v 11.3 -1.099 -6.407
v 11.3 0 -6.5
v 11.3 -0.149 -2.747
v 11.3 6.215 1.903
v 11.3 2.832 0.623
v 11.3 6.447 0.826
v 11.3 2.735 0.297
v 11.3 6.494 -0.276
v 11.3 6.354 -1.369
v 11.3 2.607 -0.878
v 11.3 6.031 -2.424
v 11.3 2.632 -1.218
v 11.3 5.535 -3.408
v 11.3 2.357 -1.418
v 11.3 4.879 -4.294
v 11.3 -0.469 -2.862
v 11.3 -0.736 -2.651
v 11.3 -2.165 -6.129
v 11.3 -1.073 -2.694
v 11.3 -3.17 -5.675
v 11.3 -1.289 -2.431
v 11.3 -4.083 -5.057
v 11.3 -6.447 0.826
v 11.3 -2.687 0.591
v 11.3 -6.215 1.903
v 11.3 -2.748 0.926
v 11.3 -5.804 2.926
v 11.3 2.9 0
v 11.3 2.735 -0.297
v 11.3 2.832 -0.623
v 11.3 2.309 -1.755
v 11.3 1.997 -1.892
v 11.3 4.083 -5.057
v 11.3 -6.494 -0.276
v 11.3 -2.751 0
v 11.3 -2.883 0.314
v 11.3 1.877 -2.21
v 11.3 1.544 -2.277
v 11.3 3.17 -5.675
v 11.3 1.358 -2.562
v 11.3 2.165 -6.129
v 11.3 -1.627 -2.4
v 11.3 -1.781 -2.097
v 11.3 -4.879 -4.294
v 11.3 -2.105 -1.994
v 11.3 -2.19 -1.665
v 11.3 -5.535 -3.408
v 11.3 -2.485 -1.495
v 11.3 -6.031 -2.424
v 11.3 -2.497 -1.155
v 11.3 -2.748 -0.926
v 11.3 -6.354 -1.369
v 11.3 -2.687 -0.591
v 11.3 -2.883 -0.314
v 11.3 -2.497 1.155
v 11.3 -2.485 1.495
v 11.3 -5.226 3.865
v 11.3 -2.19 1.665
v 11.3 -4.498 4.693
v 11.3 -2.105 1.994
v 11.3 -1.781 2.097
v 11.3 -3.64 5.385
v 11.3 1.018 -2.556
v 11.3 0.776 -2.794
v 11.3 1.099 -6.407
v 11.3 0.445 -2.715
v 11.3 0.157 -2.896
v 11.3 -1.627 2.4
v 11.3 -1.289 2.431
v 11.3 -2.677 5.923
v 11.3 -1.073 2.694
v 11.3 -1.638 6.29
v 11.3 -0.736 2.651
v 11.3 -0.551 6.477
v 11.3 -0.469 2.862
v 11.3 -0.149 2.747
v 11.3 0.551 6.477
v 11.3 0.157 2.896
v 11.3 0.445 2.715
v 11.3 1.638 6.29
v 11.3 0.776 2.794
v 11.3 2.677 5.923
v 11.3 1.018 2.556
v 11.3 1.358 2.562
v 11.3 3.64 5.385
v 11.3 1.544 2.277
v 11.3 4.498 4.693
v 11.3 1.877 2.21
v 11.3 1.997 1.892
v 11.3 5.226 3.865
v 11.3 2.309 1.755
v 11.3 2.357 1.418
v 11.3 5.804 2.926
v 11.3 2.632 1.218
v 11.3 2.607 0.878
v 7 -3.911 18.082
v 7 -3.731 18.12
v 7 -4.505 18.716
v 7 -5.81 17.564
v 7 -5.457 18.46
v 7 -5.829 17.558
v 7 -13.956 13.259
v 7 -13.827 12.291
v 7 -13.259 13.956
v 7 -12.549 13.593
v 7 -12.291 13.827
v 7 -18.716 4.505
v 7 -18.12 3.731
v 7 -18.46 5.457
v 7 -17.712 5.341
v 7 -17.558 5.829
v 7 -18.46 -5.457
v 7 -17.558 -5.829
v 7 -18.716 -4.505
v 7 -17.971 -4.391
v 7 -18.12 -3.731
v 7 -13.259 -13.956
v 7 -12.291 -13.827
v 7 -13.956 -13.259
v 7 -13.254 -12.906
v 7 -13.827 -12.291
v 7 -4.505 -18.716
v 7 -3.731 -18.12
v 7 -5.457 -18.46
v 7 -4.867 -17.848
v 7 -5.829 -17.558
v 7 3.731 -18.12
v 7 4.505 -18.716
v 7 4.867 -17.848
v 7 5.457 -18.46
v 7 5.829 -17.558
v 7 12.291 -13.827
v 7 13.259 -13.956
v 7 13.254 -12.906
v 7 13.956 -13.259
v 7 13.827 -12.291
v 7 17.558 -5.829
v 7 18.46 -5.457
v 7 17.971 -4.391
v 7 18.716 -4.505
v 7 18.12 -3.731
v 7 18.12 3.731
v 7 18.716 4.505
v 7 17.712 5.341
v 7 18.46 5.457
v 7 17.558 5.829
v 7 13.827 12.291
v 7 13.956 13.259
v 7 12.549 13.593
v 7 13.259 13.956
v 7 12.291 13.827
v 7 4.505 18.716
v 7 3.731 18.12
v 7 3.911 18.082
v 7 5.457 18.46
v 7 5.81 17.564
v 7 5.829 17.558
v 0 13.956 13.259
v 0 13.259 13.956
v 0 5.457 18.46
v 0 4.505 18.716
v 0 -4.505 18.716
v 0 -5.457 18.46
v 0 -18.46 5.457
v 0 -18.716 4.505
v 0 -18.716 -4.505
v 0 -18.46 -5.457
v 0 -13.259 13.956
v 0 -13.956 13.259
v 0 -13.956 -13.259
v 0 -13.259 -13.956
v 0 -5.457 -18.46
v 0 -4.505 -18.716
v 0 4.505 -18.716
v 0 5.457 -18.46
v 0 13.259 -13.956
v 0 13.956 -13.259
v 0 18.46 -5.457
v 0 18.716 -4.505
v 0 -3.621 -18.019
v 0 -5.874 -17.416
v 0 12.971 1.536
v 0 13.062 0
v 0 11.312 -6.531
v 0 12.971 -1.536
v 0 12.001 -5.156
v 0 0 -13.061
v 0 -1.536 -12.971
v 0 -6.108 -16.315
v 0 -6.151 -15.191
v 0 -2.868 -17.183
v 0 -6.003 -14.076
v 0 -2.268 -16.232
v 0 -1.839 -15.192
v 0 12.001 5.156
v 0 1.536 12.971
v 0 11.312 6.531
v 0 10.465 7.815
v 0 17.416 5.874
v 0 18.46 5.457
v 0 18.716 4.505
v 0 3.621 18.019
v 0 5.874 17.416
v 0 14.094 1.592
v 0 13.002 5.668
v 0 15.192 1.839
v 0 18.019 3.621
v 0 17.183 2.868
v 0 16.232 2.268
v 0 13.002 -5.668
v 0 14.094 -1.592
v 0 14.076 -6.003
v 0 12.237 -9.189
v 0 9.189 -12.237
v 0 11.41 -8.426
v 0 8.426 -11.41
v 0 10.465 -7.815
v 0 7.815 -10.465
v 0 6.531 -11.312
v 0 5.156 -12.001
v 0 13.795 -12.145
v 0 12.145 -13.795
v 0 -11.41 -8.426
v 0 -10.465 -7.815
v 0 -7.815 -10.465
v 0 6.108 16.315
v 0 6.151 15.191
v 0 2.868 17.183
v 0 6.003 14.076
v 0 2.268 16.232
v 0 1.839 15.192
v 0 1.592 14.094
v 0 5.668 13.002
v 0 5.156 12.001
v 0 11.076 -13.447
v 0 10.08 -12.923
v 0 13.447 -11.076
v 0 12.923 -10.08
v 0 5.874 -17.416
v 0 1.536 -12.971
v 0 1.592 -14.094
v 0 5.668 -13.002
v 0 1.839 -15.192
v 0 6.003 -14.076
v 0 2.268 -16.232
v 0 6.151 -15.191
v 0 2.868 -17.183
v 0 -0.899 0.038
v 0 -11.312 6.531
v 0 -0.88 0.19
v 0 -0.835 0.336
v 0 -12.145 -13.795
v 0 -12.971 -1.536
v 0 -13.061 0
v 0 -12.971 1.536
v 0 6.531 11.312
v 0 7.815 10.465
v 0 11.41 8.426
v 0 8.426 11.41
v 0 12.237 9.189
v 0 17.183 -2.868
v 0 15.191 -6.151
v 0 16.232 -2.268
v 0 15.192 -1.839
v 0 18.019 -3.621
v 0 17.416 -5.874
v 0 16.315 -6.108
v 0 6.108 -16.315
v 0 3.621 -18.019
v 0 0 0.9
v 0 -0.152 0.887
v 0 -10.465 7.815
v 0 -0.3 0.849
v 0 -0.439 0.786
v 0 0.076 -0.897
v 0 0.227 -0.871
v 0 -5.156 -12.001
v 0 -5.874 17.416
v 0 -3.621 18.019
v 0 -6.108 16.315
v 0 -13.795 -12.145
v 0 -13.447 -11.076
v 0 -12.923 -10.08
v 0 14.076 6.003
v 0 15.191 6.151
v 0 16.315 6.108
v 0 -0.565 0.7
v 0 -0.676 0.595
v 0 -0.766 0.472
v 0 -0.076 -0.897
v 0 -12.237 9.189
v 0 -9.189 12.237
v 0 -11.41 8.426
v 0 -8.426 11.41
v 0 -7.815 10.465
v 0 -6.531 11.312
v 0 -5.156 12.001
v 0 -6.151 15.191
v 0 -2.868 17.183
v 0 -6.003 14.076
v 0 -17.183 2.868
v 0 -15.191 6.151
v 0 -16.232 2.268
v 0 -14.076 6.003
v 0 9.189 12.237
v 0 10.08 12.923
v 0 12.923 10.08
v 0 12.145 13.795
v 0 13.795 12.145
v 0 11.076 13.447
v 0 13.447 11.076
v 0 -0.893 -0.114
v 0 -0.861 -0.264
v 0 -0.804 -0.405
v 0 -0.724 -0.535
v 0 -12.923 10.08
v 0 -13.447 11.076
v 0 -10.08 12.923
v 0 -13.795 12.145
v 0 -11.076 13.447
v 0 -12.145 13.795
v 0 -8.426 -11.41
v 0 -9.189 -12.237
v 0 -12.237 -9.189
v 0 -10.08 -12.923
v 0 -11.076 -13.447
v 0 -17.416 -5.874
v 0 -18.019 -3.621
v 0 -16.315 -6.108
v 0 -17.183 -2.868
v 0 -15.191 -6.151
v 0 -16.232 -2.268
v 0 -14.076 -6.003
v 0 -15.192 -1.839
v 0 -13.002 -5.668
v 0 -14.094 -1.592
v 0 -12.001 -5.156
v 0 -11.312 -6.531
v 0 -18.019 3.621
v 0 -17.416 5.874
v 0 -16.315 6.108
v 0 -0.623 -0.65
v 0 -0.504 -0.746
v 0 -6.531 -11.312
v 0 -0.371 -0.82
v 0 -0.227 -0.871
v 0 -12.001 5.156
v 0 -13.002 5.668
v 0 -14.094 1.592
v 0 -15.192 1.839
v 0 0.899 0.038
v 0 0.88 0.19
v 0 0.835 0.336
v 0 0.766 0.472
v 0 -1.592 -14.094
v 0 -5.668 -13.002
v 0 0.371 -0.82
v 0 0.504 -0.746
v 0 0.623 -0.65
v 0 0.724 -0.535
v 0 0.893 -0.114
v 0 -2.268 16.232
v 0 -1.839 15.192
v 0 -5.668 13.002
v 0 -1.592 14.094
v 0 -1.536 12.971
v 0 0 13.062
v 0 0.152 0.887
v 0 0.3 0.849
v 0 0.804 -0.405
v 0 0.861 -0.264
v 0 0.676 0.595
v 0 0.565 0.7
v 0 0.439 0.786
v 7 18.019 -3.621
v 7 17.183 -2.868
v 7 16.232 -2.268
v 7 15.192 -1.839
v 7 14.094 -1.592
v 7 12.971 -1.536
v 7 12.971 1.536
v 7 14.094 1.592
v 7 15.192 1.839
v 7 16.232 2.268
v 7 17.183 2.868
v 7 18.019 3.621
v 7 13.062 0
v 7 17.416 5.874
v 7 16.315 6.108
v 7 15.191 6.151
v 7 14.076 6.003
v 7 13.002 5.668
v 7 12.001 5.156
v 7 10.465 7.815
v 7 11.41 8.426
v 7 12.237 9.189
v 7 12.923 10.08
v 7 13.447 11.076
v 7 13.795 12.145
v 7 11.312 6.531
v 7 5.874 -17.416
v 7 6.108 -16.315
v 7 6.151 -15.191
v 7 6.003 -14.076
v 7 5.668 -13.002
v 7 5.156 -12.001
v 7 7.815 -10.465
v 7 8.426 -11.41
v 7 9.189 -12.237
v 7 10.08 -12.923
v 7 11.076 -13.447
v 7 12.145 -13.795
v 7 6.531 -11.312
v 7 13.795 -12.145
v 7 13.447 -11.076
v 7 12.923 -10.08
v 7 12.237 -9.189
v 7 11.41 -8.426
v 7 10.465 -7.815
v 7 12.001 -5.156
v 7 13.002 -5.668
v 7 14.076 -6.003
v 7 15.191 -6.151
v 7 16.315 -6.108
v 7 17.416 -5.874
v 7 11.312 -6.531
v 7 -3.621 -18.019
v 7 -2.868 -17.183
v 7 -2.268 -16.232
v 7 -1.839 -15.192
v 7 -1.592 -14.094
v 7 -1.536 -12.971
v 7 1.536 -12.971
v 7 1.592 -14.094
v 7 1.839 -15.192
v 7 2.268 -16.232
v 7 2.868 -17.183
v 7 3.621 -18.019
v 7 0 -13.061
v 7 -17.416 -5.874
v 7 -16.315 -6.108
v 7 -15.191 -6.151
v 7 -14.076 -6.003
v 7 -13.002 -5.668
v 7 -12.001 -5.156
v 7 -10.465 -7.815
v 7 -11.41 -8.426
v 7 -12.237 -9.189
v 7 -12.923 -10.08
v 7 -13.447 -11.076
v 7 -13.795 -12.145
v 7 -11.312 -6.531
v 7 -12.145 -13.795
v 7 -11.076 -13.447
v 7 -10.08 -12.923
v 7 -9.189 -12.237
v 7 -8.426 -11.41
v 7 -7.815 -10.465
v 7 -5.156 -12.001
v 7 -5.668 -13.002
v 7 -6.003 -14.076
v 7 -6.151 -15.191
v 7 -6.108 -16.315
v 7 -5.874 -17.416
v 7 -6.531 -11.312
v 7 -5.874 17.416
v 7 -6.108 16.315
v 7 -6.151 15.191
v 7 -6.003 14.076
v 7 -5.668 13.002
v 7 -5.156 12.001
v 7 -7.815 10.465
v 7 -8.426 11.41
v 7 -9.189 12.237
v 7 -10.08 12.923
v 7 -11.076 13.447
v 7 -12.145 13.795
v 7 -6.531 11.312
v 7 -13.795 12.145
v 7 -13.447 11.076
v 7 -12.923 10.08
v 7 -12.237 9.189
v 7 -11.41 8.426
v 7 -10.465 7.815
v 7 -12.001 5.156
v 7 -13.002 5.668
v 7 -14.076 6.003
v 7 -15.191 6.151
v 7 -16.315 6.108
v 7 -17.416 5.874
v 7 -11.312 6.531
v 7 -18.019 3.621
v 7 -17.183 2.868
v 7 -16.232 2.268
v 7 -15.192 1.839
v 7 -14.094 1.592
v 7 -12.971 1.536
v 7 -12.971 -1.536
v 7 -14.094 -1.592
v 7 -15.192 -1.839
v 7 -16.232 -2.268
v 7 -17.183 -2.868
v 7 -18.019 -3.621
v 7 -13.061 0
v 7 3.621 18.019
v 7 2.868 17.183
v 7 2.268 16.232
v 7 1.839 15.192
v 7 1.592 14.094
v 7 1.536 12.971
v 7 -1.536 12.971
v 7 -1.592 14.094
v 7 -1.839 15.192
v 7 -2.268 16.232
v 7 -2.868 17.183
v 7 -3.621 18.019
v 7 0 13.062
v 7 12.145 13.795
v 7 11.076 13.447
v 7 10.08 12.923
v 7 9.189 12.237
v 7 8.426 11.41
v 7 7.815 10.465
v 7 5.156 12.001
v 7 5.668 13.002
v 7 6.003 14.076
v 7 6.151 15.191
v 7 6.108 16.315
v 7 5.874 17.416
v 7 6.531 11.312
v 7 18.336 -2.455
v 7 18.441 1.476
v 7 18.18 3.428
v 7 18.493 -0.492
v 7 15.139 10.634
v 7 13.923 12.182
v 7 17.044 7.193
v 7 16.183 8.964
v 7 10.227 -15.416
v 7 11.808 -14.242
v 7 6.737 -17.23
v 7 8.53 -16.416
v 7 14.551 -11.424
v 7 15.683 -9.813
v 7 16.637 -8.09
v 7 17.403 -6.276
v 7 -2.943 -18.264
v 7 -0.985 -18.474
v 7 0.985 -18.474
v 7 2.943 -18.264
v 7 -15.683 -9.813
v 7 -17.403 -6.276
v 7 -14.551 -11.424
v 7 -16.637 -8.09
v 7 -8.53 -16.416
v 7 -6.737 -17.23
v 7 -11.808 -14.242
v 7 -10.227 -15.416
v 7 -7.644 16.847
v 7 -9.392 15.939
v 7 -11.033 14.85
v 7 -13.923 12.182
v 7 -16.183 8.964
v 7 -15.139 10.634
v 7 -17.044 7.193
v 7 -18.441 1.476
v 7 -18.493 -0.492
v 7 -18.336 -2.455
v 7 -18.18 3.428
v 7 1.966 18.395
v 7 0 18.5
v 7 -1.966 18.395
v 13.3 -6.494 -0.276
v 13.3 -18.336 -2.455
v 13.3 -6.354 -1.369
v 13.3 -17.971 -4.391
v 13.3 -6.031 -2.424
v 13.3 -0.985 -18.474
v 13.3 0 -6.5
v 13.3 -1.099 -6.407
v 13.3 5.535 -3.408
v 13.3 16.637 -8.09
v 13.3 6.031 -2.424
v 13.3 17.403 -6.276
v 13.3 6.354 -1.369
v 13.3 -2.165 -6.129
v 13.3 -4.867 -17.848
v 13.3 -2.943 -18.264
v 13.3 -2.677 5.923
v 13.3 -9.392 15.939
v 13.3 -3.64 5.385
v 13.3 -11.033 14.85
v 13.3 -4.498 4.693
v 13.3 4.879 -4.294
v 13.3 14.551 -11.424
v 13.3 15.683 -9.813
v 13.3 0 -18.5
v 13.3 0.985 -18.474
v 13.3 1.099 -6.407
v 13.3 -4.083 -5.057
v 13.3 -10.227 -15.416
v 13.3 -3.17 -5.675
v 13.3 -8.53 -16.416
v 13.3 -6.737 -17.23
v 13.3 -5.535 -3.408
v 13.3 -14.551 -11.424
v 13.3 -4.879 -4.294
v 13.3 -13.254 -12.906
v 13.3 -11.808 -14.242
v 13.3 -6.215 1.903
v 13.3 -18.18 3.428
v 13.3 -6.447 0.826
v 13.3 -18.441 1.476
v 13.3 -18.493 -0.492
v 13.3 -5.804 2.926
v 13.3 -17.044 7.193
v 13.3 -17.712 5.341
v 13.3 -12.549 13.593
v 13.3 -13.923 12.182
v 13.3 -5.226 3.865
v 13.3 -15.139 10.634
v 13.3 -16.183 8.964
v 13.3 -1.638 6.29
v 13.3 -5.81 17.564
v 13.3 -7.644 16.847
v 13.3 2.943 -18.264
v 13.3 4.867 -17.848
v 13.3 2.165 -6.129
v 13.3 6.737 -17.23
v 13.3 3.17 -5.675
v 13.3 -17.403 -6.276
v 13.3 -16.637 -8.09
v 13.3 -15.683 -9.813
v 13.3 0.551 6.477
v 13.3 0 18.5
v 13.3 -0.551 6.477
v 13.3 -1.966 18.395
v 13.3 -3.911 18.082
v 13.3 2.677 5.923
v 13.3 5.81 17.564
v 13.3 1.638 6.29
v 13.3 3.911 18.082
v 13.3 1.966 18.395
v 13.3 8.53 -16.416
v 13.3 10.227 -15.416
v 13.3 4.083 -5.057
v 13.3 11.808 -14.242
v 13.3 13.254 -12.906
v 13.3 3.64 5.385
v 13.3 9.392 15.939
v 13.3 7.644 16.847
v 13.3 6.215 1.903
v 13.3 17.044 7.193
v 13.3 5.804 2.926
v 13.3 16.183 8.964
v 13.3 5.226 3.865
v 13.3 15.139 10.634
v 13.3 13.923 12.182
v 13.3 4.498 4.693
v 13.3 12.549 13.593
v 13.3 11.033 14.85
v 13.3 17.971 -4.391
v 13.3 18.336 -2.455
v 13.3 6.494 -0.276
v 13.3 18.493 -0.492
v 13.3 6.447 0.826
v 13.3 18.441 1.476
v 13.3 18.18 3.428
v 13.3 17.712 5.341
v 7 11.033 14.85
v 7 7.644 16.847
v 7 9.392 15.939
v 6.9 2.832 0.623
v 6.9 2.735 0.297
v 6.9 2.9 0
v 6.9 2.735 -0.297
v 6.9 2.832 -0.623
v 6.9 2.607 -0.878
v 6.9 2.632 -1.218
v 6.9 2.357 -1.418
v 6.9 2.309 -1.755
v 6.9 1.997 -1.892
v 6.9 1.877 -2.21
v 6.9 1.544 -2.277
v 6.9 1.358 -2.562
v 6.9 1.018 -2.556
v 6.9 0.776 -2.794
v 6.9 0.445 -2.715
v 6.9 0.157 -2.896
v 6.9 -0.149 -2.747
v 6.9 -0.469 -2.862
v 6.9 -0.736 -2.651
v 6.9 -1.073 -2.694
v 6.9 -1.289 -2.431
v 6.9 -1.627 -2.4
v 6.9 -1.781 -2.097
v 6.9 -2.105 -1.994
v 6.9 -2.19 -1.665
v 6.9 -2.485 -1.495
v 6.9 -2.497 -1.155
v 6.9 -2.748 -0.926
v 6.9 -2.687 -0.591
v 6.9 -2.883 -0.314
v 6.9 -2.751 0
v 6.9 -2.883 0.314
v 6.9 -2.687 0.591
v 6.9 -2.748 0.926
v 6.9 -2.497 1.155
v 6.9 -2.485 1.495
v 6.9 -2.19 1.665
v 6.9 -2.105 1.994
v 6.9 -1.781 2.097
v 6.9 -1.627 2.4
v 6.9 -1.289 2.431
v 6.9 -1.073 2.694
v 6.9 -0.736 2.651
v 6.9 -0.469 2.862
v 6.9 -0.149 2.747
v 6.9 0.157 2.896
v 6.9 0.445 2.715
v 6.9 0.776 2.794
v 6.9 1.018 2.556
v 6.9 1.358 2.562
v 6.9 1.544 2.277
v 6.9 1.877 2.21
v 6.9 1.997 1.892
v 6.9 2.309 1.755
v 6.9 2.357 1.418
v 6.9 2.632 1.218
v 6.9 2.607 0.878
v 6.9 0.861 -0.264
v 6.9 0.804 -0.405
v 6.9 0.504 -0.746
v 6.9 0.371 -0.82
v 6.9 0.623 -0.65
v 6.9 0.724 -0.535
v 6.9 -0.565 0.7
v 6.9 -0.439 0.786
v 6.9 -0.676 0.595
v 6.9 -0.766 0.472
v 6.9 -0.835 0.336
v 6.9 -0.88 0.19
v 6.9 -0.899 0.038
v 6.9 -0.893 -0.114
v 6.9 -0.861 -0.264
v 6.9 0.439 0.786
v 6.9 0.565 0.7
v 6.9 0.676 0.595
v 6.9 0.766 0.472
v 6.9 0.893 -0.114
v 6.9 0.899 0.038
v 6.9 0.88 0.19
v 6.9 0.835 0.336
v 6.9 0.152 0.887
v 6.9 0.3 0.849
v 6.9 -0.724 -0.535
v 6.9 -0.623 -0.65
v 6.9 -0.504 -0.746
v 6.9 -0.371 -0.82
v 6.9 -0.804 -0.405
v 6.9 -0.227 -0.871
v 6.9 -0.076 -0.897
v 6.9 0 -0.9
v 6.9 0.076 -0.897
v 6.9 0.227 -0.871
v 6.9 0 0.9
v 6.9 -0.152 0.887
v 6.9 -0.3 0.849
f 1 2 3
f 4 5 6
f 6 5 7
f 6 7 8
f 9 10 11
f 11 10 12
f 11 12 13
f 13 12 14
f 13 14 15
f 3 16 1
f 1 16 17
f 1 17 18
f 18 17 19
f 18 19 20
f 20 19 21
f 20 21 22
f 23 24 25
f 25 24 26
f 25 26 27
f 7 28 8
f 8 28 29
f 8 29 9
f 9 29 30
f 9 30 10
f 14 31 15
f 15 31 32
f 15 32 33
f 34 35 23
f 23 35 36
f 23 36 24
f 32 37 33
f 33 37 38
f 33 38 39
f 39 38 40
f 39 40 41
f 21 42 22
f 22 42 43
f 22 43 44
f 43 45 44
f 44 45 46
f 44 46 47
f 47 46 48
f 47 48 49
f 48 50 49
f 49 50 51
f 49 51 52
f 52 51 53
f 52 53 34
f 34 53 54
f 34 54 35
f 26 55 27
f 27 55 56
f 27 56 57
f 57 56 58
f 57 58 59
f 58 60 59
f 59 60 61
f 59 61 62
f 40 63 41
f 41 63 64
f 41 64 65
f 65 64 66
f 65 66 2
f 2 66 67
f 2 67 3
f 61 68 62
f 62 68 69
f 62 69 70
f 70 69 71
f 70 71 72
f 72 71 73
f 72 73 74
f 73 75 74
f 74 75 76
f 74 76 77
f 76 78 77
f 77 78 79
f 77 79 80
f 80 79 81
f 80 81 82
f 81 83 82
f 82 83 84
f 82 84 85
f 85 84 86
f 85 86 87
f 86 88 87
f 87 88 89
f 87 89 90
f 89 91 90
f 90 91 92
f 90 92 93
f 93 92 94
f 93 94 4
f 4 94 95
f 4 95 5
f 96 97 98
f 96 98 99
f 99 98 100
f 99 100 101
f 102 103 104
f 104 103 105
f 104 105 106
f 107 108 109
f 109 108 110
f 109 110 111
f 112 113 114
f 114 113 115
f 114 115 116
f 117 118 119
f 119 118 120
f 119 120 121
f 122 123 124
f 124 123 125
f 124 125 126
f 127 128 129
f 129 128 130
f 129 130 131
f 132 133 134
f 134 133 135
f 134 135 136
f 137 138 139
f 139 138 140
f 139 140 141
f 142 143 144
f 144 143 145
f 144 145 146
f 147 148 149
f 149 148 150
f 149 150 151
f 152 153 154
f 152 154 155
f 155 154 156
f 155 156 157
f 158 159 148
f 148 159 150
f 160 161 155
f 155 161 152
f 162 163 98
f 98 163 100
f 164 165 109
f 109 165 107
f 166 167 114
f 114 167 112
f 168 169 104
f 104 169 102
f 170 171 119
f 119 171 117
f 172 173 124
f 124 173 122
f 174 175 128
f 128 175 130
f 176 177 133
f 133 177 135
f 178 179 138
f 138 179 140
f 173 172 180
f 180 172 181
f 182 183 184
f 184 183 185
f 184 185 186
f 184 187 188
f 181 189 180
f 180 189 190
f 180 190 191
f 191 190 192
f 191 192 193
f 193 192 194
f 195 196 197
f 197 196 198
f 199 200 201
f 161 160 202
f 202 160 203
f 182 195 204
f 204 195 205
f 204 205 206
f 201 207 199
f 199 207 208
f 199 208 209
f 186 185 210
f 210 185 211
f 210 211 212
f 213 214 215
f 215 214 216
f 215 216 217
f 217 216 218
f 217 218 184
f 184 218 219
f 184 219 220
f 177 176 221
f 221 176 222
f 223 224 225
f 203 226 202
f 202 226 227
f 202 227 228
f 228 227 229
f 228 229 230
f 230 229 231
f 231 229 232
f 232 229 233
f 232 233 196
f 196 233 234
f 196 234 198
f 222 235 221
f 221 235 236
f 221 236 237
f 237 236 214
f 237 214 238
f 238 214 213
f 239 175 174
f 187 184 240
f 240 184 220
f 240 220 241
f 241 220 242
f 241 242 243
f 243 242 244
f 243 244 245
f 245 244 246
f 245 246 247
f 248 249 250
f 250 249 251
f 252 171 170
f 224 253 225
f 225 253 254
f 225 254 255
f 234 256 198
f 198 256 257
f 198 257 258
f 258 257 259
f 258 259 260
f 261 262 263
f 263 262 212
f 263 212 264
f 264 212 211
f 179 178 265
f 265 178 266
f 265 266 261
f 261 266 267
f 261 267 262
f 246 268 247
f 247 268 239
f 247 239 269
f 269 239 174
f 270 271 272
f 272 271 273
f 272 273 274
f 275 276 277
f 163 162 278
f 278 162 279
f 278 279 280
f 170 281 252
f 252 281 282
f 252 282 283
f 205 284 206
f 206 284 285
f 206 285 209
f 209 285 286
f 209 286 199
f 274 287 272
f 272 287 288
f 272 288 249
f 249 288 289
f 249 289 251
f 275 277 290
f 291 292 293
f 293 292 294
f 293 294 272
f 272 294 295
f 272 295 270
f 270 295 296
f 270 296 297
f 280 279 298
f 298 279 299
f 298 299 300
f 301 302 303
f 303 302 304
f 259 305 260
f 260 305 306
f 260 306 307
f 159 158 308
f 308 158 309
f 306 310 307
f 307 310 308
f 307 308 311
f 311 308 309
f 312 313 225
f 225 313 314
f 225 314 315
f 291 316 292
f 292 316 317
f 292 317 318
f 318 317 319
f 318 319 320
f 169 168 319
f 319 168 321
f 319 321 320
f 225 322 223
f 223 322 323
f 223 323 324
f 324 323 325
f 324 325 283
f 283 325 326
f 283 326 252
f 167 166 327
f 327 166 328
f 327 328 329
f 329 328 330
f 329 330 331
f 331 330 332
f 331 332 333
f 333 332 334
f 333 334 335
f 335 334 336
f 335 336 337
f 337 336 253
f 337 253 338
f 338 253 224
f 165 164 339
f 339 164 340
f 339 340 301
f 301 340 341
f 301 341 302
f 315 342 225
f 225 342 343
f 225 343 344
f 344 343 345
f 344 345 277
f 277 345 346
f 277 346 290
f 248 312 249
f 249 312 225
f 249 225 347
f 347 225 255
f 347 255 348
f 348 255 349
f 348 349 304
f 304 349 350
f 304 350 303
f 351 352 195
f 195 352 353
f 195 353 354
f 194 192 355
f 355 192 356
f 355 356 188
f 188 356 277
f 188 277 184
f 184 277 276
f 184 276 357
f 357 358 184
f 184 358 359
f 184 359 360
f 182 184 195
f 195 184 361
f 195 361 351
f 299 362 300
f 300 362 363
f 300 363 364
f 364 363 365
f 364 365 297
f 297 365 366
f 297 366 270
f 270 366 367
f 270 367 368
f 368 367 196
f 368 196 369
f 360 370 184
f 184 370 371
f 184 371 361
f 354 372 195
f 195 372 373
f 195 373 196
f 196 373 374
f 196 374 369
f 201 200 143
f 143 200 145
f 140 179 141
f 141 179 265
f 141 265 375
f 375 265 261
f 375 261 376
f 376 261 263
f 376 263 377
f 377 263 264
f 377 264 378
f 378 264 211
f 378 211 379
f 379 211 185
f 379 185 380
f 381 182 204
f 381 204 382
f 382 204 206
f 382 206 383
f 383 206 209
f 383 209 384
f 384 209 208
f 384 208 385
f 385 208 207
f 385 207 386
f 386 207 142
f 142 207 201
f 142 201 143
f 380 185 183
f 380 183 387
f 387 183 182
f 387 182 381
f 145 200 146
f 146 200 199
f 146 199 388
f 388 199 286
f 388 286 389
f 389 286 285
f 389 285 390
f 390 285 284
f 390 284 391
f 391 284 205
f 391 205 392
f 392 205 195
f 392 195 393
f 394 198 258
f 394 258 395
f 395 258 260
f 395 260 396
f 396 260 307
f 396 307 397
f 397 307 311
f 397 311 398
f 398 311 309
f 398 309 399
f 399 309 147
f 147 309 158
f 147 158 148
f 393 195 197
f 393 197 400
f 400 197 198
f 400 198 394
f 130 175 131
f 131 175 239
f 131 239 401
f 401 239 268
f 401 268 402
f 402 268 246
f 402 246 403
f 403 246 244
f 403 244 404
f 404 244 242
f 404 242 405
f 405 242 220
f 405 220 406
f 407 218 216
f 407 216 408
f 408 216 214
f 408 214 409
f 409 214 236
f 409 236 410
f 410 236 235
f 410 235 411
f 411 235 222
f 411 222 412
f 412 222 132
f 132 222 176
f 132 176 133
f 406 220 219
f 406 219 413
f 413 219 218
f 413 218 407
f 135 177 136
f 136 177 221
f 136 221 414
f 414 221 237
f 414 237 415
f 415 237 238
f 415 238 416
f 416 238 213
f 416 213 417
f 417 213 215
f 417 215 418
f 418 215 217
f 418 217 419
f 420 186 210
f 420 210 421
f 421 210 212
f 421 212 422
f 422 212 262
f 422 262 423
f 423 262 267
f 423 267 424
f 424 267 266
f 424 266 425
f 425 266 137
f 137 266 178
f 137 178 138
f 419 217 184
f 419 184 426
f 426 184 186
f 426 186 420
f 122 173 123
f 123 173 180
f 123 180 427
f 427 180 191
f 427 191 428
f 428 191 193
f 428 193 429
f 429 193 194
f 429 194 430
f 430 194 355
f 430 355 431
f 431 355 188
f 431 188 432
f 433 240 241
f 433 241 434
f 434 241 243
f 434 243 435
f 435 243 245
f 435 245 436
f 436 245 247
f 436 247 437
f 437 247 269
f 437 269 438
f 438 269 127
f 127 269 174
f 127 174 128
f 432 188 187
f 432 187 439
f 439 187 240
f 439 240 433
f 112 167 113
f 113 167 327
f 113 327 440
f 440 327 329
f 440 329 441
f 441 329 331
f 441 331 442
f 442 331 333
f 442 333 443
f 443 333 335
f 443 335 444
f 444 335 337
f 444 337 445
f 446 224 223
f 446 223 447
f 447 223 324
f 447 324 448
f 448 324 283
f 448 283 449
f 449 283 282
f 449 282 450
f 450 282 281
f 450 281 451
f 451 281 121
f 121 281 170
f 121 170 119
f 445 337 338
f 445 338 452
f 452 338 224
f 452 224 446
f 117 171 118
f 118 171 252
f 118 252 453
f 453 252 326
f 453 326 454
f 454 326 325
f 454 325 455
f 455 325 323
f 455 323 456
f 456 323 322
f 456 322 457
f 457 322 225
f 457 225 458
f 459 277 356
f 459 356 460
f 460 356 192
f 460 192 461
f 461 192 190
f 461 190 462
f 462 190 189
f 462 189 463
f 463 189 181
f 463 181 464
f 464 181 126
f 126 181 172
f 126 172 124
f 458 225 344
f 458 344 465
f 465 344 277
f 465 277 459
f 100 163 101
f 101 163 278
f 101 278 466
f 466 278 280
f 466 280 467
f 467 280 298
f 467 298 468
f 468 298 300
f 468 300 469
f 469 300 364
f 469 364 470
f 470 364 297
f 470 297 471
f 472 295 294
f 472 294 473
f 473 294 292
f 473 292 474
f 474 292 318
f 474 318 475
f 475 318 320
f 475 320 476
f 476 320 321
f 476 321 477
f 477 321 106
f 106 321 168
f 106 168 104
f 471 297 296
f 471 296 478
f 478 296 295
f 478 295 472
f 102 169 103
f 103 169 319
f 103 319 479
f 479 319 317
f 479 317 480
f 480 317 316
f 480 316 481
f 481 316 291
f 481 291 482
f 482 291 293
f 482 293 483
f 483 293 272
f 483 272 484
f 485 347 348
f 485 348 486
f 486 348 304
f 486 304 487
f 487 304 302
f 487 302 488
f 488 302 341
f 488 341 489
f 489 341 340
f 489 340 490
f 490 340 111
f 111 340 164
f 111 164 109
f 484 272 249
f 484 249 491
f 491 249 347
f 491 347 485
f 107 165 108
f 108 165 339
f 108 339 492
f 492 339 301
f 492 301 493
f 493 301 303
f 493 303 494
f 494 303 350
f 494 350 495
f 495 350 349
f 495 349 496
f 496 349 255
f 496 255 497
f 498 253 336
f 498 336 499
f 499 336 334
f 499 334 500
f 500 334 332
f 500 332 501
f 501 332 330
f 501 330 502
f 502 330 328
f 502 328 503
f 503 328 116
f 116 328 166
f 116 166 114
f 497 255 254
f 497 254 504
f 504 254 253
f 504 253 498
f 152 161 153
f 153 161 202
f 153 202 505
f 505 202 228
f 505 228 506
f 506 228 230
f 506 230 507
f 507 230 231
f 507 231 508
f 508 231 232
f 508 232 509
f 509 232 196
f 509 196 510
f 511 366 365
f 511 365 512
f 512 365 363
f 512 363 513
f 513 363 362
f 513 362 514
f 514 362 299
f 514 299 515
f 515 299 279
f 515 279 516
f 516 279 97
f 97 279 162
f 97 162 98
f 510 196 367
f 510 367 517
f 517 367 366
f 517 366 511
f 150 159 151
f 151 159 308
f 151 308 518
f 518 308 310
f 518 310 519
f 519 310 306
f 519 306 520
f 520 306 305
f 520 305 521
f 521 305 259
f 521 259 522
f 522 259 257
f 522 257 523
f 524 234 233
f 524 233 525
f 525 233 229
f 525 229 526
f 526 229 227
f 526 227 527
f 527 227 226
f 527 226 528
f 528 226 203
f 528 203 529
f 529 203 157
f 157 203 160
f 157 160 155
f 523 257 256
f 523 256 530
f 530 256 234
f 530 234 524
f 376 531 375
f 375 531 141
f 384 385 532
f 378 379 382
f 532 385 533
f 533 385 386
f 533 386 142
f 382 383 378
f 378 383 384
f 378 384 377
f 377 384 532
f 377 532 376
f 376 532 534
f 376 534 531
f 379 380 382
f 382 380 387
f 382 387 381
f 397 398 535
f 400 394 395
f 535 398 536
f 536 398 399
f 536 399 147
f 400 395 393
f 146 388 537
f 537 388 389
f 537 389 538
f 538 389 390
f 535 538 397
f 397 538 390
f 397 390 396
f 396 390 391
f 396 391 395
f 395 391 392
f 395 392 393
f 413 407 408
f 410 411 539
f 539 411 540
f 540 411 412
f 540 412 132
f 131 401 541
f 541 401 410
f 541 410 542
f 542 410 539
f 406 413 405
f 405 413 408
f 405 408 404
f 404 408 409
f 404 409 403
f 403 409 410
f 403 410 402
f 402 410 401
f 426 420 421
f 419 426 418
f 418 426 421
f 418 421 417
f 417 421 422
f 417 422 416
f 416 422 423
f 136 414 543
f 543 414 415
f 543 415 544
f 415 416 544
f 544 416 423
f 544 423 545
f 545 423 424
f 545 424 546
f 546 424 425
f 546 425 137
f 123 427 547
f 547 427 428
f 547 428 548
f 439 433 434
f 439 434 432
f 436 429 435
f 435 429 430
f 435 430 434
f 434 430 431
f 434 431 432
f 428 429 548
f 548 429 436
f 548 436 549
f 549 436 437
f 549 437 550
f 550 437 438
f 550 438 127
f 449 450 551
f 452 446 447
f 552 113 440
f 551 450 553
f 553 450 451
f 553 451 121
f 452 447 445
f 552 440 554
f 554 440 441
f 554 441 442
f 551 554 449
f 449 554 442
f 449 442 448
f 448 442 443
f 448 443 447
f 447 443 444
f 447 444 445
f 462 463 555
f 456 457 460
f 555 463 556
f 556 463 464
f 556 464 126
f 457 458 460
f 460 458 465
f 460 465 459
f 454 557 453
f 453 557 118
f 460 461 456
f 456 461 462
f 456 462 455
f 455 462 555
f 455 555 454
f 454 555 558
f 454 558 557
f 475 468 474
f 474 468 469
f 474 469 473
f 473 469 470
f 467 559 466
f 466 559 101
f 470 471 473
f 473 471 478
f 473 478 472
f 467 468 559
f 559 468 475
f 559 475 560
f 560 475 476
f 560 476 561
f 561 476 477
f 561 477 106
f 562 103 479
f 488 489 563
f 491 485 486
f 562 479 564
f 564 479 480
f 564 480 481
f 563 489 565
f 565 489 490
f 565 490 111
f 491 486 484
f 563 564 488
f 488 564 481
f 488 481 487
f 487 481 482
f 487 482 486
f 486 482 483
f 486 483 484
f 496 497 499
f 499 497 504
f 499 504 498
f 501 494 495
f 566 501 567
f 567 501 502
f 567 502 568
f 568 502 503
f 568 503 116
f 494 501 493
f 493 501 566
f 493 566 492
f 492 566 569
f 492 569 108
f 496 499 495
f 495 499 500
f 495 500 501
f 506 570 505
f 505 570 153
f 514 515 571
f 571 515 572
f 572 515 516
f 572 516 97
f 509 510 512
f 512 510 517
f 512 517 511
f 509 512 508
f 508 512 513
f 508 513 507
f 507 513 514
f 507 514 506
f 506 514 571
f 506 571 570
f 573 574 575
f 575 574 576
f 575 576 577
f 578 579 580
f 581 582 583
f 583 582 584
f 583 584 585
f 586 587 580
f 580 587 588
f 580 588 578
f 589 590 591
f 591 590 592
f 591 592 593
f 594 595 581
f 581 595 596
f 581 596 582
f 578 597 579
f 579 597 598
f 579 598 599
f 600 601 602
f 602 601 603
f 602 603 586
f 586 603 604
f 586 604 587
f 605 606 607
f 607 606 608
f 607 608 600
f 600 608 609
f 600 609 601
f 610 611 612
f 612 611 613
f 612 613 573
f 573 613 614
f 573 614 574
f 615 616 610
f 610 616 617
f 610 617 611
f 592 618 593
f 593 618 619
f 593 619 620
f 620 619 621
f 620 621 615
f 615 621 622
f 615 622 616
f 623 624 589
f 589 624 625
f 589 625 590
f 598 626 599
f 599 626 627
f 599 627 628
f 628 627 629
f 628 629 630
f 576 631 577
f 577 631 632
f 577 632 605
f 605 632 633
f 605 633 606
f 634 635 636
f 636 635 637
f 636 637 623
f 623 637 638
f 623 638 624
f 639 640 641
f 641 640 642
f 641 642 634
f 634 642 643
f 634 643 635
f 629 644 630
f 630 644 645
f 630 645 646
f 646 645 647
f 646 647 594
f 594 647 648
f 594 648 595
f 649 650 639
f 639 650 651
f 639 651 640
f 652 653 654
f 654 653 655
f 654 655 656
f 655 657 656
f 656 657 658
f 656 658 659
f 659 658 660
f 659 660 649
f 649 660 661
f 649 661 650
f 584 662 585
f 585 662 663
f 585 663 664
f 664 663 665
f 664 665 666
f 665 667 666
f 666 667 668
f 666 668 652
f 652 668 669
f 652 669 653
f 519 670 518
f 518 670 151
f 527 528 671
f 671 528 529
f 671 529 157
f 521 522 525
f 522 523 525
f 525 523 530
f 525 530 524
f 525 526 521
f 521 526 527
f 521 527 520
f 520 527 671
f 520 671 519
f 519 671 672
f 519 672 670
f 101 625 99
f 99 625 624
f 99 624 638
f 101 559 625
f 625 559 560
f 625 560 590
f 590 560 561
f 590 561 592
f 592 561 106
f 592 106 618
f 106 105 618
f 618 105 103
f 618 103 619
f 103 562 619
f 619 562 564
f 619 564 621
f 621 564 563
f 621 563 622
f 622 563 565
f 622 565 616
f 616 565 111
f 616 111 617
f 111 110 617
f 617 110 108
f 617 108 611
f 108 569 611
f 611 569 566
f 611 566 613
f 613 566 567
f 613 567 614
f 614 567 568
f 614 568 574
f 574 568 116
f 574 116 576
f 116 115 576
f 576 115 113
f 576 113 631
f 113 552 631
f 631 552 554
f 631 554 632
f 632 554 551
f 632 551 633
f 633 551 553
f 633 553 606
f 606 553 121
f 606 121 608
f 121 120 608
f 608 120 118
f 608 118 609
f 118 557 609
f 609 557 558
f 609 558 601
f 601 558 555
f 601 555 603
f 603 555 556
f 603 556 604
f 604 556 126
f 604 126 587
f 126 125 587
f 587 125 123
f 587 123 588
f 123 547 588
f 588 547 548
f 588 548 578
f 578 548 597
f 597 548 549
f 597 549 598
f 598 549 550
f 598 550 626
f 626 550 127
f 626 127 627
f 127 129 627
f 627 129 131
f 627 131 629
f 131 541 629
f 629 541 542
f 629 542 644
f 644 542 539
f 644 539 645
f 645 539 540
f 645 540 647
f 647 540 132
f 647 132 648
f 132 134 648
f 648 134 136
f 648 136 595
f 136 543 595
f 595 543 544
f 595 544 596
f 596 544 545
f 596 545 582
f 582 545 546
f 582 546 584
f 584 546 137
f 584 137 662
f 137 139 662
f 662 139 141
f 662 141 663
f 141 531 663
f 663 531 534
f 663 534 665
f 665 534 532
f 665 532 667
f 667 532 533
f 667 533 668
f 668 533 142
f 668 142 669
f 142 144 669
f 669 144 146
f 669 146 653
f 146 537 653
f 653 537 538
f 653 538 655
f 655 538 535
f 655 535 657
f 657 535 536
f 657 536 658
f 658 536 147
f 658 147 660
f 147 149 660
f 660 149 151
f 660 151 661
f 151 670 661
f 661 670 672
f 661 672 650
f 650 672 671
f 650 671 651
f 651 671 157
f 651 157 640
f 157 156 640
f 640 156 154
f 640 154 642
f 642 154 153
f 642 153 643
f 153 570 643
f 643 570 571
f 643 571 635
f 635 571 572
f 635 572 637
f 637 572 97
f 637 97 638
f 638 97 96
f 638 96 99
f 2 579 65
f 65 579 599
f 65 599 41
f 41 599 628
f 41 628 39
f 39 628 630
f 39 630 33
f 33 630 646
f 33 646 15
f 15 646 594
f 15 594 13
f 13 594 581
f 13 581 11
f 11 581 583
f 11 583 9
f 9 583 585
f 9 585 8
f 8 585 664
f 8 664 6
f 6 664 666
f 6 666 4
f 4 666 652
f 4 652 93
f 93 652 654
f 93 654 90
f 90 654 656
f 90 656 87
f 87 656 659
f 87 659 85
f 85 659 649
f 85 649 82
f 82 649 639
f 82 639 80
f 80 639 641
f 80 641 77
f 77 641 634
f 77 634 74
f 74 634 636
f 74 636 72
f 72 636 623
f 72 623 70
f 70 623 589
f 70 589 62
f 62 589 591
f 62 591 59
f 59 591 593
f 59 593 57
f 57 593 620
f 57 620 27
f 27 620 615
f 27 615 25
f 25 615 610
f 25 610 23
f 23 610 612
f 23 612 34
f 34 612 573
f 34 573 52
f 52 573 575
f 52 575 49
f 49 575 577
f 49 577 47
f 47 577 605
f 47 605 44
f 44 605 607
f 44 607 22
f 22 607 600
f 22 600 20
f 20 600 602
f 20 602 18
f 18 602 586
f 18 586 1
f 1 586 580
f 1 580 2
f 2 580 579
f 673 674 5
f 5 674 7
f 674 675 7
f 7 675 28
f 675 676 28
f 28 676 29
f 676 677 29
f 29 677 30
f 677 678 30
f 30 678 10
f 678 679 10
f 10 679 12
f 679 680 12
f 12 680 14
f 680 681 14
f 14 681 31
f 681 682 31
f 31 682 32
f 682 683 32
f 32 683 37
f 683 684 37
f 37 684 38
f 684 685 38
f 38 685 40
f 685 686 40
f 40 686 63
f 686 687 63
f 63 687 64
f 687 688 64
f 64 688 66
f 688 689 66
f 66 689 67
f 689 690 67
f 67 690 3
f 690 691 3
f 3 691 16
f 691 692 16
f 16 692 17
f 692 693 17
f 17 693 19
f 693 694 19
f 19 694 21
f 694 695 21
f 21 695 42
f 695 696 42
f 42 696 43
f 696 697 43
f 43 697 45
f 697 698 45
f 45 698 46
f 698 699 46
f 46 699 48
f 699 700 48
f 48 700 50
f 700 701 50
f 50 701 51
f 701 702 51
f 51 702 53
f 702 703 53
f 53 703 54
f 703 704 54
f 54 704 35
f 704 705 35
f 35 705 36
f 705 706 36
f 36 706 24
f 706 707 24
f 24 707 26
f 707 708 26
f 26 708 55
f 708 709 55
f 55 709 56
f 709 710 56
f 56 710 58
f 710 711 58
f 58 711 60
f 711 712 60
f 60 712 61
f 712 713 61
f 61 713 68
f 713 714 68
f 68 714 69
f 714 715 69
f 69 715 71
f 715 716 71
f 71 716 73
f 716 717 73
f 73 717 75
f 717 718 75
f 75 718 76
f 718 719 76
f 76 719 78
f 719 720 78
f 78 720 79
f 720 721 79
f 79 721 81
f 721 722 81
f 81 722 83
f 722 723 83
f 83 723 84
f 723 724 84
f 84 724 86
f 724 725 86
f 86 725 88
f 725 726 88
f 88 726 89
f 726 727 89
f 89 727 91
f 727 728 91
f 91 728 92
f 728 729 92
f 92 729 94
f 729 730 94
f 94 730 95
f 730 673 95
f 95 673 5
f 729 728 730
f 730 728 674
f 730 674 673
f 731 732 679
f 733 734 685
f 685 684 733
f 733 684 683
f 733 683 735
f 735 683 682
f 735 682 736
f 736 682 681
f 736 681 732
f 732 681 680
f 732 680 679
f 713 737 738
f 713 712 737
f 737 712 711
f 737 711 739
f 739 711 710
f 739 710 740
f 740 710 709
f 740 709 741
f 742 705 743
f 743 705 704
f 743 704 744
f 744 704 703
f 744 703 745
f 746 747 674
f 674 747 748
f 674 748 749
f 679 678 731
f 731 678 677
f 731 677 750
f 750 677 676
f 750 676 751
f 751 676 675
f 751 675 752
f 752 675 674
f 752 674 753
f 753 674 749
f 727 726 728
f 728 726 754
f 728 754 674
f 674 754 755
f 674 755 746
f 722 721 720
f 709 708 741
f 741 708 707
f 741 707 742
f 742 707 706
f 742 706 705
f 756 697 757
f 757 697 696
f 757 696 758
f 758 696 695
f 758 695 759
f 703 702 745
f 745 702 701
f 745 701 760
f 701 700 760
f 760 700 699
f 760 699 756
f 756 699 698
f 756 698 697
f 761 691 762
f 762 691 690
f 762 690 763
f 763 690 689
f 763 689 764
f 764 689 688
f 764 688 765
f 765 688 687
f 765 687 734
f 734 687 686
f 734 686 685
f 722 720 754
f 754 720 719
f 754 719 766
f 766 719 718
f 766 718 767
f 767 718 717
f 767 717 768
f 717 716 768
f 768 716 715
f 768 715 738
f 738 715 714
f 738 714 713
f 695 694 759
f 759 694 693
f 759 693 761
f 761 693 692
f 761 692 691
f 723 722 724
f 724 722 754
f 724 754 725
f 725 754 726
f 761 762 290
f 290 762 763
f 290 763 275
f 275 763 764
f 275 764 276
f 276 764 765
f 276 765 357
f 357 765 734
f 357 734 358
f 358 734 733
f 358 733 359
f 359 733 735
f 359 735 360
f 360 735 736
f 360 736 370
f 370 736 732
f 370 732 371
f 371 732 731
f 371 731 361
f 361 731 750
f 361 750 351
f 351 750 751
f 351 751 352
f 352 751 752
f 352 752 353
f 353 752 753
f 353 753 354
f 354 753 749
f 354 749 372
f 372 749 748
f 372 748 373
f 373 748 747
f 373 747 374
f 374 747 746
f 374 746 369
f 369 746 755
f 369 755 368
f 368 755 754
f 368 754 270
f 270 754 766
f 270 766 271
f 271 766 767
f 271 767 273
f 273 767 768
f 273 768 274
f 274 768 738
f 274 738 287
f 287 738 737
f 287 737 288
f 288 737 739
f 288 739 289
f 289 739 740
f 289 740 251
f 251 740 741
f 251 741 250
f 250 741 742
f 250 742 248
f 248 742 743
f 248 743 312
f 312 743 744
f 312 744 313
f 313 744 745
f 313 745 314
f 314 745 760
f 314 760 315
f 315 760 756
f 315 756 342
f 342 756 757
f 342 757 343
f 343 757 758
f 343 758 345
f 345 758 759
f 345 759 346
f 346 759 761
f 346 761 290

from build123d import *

# Parameters (mm, degrees)
BASPROSKE_W         = 7
BASPROSKE_H         = 19.25
TOOTHCUT_DEPTH      = 29.109162207
TEETHCUTS_COUNT     = 12
TEETHCUTS_ANGLE     = 330
BORSKE_R            = 0.4
BORE_DEPTH          = 50.0000508
EXTRUDE_START       = 6.3
SKETCH_1_R          = 18.5
SKETCH_1_R_2        = 0.4
EXTRUDE_1_DEPTH     = 6.3
SKETCH_8_R          = 6.5
SKETCH_8_R_2        = 0.4
CUT_EXTRUDE_6_DEPTH = 2
SKETCH_9_R          = 0.4
CUT_EXTRUDE_7_DEPTH = 4.4
SKETCH_10_R         = 0.9
CUT_EXTRUDE_8_DEPTH = 30.621500794


with BuildPart() as part:
    # BasProSke → Base-Revolve (revolve)
    with BuildSketch(Plane(origin=(0, 0, 0), x_dir=(1, 0, 0), z_dir=(0, 1, 0)), mode=Mode.PRIVATE) as base_revolve_sk:
        with Locations((3.5, 9.625)):
            Rectangle(BASPROSKE_W, BASPROSKE_H)
    revolve(base_revolve_sk.sketch.rotate(Axis((-10, 0, 0), (1, 0, 0)), 180), axis=Axis((-10, 0, 0), (1, 0, 0)))

    # TooCutSke → ToothCut (cut, through all)
    with BuildSketch(Plane(origin=(0, 0, 0), x_dir=(0, 0, -1), z_dir=(1, 0, 0))):
        with BuildLine():
            ThreePointArc((1.535617211, 12.970916006), (0, 13.0615), (-1.535617211, 12.970916006))
            ThreePointArc((-1.535617211, 12.970916006), (-2.27635986, 16.247221969), (-4.533719407, 18.734631928))
            ThreePointArc((-4.533719407, 18.734631928), (0, 19.2754), (4.533719407, 18.734631928))
            ThreePointArc((4.533719407, 18.734631928), (2.27635986, 16.247221969), (1.535617211, 12.970916006))
        make_face()
    toothcut = extrude(amount=TOOTHCUT_DEPTH, mode=Mode.SUBTRACT)

    # TeethCuts: ToothCut ×12 about axis
    teethcuts_axis = Axis((-10, 0, 0), (1, 0, 0))
    for i in range(1, TEETHCUTS_COUNT):
        add(toothcut.rotate(teethcuts_axis, i * TEETHCUTS_ANGLE / (TEETHCUTS_COUNT - 1)), mode=Mode.SUBTRACT)

    # BorSke → Bore (cut, symmetric)
    with BuildSketch(Plane(origin=(0, 0, 0), x_dir=(0, 0, -1), z_dir=(1, 0, 0))):
        with Locations(Location((0, 0, 0), (0, 0, 180))):
            Circle(BORSKE_R)
    extrude(amount=BORE_DEPTH, both=True, mode=Mode.SUBTRACT)

    # Эскиз1 → Бобышка-Вытянуть1 (add)
    with BuildSketch(Plane(origin=(7, 0, 0), x_dir=(0, 0, -1), z_dir=(1, 0, 0)).offset(EXTRUDE_START)):
        with Locations(Location((0, 0, 0), (0, 0, 168.366396173))):
            Circle(SKETCH_1_R)
        Circle(SKETCH_1_R_2, mode=Mode.SUBTRACT)
    extrude(amount=-EXTRUDE_1_DEPTH)

    # Эскиз8 → Вырез-Вытянуть6 (cut)
    with BuildSketch(Plane(origin=(13.3, 0, 0), x_dir=(0, 0, -1), z_dir=(1, 0, 0))):
        Circle(SKETCH_8_R)
        Circle(SKETCH_8_R_2, mode=Mode.SUBTRACT)
    extrude(amount=-CUT_EXTRUDE_6_DEPTH, mode=Mode.SUBTRACT)

    # Эскиз9 → Вырез-Вытянуть7 (cut)
    with BuildSketch(Plane(origin=(11.3, 0, 0), x_dir=(0, 0, -1), z_dir=(1, 0, 0))):
        Polygon((0.297449416, 2.735002218), (0, 2.9), (-0.297449416, 2.735002218), (-0.623414277, 2.832199612), (-0.878439845, 2.607116554), (-1.217678395, 2.631968717), (-1.418355403, 2.357325017), (-1.755005224, 2.308669891), (-1.891950238, 1.997307583), (-2.21026996, 1.877420226), (-2.277079583, 1.543898266), (-2.562184929, 1.358384478), (-2.555735218, 1.018297982), (-2.794294978, 0.775832182), (-2.714887514, 0.445083216), (-2.8957469, 0.157002835), (-2.747094688, -0.148943146), (-2.861796915, -0.46916779), (-2.650850767, -0.736005093), (-2.694032487, -1.07340065), (-2.43065601, -1.288652259), (-2.400298095, -1.62744249), (-2.09680648, -1.781043478), (-1.994328431, -2.105386927), (-1.66491261, -2.190155083), (-1.495106186, -2.484885811), (-1.155169276, -2.496857471), (-0.925974437, -2.748194196), (-0.59141151, -2.686809578), (-0.313545153, -2.883000076), (0, -2.751129456), (0.313545153, -2.883000076), (0.59141151, -2.686809578), (0.925974437, -2.748194196), (1.155169276, -2.496857471), (1.495106186, -2.484885811), (1.66491261, -2.190155083), (1.994328431, -2.105386927), (2.09680648, -1.781043478), (2.400298095, -1.62744249), (2.43065601, -1.288652259), (2.694032487, -1.07340065), (2.650850767, -0.736005093), (2.861796915, -0.46916779), (2.747094688, -0.148943146), (2.8957469, 0.157002835), (2.714887514, 0.445083216), (2.794294978, 0.775832182), (2.555735218, 1.018297982), (2.562184929, 1.358384478), (2.277079583, 1.543898266), (2.21026996, 1.877420226), (1.891950238, 1.997307583), (1.755005224, 2.308669891), (1.418355403, 2.357325017), (1.217678395, 2.631968717), (0.878439845, 2.607116554), (0.623414277, 2.832199612), align=None)
        Circle(SKETCH_9_R, mode=Mode.SUBTRACT)
    extrude(amount=-CUT_EXTRUDE_7_DEPTH, mode=Mode.SUBTRACT)

    # Эскиз10 → Вырез-Вытянуть8 (cut, through all)
    with BuildSketch(Plane.ZY):
        Circle(SKETCH_10_R)
    extrude(amount=-CUT_EXTRUDE_8_DEPTH, mode=Mode.SUBTRACT)


solid = part.part
